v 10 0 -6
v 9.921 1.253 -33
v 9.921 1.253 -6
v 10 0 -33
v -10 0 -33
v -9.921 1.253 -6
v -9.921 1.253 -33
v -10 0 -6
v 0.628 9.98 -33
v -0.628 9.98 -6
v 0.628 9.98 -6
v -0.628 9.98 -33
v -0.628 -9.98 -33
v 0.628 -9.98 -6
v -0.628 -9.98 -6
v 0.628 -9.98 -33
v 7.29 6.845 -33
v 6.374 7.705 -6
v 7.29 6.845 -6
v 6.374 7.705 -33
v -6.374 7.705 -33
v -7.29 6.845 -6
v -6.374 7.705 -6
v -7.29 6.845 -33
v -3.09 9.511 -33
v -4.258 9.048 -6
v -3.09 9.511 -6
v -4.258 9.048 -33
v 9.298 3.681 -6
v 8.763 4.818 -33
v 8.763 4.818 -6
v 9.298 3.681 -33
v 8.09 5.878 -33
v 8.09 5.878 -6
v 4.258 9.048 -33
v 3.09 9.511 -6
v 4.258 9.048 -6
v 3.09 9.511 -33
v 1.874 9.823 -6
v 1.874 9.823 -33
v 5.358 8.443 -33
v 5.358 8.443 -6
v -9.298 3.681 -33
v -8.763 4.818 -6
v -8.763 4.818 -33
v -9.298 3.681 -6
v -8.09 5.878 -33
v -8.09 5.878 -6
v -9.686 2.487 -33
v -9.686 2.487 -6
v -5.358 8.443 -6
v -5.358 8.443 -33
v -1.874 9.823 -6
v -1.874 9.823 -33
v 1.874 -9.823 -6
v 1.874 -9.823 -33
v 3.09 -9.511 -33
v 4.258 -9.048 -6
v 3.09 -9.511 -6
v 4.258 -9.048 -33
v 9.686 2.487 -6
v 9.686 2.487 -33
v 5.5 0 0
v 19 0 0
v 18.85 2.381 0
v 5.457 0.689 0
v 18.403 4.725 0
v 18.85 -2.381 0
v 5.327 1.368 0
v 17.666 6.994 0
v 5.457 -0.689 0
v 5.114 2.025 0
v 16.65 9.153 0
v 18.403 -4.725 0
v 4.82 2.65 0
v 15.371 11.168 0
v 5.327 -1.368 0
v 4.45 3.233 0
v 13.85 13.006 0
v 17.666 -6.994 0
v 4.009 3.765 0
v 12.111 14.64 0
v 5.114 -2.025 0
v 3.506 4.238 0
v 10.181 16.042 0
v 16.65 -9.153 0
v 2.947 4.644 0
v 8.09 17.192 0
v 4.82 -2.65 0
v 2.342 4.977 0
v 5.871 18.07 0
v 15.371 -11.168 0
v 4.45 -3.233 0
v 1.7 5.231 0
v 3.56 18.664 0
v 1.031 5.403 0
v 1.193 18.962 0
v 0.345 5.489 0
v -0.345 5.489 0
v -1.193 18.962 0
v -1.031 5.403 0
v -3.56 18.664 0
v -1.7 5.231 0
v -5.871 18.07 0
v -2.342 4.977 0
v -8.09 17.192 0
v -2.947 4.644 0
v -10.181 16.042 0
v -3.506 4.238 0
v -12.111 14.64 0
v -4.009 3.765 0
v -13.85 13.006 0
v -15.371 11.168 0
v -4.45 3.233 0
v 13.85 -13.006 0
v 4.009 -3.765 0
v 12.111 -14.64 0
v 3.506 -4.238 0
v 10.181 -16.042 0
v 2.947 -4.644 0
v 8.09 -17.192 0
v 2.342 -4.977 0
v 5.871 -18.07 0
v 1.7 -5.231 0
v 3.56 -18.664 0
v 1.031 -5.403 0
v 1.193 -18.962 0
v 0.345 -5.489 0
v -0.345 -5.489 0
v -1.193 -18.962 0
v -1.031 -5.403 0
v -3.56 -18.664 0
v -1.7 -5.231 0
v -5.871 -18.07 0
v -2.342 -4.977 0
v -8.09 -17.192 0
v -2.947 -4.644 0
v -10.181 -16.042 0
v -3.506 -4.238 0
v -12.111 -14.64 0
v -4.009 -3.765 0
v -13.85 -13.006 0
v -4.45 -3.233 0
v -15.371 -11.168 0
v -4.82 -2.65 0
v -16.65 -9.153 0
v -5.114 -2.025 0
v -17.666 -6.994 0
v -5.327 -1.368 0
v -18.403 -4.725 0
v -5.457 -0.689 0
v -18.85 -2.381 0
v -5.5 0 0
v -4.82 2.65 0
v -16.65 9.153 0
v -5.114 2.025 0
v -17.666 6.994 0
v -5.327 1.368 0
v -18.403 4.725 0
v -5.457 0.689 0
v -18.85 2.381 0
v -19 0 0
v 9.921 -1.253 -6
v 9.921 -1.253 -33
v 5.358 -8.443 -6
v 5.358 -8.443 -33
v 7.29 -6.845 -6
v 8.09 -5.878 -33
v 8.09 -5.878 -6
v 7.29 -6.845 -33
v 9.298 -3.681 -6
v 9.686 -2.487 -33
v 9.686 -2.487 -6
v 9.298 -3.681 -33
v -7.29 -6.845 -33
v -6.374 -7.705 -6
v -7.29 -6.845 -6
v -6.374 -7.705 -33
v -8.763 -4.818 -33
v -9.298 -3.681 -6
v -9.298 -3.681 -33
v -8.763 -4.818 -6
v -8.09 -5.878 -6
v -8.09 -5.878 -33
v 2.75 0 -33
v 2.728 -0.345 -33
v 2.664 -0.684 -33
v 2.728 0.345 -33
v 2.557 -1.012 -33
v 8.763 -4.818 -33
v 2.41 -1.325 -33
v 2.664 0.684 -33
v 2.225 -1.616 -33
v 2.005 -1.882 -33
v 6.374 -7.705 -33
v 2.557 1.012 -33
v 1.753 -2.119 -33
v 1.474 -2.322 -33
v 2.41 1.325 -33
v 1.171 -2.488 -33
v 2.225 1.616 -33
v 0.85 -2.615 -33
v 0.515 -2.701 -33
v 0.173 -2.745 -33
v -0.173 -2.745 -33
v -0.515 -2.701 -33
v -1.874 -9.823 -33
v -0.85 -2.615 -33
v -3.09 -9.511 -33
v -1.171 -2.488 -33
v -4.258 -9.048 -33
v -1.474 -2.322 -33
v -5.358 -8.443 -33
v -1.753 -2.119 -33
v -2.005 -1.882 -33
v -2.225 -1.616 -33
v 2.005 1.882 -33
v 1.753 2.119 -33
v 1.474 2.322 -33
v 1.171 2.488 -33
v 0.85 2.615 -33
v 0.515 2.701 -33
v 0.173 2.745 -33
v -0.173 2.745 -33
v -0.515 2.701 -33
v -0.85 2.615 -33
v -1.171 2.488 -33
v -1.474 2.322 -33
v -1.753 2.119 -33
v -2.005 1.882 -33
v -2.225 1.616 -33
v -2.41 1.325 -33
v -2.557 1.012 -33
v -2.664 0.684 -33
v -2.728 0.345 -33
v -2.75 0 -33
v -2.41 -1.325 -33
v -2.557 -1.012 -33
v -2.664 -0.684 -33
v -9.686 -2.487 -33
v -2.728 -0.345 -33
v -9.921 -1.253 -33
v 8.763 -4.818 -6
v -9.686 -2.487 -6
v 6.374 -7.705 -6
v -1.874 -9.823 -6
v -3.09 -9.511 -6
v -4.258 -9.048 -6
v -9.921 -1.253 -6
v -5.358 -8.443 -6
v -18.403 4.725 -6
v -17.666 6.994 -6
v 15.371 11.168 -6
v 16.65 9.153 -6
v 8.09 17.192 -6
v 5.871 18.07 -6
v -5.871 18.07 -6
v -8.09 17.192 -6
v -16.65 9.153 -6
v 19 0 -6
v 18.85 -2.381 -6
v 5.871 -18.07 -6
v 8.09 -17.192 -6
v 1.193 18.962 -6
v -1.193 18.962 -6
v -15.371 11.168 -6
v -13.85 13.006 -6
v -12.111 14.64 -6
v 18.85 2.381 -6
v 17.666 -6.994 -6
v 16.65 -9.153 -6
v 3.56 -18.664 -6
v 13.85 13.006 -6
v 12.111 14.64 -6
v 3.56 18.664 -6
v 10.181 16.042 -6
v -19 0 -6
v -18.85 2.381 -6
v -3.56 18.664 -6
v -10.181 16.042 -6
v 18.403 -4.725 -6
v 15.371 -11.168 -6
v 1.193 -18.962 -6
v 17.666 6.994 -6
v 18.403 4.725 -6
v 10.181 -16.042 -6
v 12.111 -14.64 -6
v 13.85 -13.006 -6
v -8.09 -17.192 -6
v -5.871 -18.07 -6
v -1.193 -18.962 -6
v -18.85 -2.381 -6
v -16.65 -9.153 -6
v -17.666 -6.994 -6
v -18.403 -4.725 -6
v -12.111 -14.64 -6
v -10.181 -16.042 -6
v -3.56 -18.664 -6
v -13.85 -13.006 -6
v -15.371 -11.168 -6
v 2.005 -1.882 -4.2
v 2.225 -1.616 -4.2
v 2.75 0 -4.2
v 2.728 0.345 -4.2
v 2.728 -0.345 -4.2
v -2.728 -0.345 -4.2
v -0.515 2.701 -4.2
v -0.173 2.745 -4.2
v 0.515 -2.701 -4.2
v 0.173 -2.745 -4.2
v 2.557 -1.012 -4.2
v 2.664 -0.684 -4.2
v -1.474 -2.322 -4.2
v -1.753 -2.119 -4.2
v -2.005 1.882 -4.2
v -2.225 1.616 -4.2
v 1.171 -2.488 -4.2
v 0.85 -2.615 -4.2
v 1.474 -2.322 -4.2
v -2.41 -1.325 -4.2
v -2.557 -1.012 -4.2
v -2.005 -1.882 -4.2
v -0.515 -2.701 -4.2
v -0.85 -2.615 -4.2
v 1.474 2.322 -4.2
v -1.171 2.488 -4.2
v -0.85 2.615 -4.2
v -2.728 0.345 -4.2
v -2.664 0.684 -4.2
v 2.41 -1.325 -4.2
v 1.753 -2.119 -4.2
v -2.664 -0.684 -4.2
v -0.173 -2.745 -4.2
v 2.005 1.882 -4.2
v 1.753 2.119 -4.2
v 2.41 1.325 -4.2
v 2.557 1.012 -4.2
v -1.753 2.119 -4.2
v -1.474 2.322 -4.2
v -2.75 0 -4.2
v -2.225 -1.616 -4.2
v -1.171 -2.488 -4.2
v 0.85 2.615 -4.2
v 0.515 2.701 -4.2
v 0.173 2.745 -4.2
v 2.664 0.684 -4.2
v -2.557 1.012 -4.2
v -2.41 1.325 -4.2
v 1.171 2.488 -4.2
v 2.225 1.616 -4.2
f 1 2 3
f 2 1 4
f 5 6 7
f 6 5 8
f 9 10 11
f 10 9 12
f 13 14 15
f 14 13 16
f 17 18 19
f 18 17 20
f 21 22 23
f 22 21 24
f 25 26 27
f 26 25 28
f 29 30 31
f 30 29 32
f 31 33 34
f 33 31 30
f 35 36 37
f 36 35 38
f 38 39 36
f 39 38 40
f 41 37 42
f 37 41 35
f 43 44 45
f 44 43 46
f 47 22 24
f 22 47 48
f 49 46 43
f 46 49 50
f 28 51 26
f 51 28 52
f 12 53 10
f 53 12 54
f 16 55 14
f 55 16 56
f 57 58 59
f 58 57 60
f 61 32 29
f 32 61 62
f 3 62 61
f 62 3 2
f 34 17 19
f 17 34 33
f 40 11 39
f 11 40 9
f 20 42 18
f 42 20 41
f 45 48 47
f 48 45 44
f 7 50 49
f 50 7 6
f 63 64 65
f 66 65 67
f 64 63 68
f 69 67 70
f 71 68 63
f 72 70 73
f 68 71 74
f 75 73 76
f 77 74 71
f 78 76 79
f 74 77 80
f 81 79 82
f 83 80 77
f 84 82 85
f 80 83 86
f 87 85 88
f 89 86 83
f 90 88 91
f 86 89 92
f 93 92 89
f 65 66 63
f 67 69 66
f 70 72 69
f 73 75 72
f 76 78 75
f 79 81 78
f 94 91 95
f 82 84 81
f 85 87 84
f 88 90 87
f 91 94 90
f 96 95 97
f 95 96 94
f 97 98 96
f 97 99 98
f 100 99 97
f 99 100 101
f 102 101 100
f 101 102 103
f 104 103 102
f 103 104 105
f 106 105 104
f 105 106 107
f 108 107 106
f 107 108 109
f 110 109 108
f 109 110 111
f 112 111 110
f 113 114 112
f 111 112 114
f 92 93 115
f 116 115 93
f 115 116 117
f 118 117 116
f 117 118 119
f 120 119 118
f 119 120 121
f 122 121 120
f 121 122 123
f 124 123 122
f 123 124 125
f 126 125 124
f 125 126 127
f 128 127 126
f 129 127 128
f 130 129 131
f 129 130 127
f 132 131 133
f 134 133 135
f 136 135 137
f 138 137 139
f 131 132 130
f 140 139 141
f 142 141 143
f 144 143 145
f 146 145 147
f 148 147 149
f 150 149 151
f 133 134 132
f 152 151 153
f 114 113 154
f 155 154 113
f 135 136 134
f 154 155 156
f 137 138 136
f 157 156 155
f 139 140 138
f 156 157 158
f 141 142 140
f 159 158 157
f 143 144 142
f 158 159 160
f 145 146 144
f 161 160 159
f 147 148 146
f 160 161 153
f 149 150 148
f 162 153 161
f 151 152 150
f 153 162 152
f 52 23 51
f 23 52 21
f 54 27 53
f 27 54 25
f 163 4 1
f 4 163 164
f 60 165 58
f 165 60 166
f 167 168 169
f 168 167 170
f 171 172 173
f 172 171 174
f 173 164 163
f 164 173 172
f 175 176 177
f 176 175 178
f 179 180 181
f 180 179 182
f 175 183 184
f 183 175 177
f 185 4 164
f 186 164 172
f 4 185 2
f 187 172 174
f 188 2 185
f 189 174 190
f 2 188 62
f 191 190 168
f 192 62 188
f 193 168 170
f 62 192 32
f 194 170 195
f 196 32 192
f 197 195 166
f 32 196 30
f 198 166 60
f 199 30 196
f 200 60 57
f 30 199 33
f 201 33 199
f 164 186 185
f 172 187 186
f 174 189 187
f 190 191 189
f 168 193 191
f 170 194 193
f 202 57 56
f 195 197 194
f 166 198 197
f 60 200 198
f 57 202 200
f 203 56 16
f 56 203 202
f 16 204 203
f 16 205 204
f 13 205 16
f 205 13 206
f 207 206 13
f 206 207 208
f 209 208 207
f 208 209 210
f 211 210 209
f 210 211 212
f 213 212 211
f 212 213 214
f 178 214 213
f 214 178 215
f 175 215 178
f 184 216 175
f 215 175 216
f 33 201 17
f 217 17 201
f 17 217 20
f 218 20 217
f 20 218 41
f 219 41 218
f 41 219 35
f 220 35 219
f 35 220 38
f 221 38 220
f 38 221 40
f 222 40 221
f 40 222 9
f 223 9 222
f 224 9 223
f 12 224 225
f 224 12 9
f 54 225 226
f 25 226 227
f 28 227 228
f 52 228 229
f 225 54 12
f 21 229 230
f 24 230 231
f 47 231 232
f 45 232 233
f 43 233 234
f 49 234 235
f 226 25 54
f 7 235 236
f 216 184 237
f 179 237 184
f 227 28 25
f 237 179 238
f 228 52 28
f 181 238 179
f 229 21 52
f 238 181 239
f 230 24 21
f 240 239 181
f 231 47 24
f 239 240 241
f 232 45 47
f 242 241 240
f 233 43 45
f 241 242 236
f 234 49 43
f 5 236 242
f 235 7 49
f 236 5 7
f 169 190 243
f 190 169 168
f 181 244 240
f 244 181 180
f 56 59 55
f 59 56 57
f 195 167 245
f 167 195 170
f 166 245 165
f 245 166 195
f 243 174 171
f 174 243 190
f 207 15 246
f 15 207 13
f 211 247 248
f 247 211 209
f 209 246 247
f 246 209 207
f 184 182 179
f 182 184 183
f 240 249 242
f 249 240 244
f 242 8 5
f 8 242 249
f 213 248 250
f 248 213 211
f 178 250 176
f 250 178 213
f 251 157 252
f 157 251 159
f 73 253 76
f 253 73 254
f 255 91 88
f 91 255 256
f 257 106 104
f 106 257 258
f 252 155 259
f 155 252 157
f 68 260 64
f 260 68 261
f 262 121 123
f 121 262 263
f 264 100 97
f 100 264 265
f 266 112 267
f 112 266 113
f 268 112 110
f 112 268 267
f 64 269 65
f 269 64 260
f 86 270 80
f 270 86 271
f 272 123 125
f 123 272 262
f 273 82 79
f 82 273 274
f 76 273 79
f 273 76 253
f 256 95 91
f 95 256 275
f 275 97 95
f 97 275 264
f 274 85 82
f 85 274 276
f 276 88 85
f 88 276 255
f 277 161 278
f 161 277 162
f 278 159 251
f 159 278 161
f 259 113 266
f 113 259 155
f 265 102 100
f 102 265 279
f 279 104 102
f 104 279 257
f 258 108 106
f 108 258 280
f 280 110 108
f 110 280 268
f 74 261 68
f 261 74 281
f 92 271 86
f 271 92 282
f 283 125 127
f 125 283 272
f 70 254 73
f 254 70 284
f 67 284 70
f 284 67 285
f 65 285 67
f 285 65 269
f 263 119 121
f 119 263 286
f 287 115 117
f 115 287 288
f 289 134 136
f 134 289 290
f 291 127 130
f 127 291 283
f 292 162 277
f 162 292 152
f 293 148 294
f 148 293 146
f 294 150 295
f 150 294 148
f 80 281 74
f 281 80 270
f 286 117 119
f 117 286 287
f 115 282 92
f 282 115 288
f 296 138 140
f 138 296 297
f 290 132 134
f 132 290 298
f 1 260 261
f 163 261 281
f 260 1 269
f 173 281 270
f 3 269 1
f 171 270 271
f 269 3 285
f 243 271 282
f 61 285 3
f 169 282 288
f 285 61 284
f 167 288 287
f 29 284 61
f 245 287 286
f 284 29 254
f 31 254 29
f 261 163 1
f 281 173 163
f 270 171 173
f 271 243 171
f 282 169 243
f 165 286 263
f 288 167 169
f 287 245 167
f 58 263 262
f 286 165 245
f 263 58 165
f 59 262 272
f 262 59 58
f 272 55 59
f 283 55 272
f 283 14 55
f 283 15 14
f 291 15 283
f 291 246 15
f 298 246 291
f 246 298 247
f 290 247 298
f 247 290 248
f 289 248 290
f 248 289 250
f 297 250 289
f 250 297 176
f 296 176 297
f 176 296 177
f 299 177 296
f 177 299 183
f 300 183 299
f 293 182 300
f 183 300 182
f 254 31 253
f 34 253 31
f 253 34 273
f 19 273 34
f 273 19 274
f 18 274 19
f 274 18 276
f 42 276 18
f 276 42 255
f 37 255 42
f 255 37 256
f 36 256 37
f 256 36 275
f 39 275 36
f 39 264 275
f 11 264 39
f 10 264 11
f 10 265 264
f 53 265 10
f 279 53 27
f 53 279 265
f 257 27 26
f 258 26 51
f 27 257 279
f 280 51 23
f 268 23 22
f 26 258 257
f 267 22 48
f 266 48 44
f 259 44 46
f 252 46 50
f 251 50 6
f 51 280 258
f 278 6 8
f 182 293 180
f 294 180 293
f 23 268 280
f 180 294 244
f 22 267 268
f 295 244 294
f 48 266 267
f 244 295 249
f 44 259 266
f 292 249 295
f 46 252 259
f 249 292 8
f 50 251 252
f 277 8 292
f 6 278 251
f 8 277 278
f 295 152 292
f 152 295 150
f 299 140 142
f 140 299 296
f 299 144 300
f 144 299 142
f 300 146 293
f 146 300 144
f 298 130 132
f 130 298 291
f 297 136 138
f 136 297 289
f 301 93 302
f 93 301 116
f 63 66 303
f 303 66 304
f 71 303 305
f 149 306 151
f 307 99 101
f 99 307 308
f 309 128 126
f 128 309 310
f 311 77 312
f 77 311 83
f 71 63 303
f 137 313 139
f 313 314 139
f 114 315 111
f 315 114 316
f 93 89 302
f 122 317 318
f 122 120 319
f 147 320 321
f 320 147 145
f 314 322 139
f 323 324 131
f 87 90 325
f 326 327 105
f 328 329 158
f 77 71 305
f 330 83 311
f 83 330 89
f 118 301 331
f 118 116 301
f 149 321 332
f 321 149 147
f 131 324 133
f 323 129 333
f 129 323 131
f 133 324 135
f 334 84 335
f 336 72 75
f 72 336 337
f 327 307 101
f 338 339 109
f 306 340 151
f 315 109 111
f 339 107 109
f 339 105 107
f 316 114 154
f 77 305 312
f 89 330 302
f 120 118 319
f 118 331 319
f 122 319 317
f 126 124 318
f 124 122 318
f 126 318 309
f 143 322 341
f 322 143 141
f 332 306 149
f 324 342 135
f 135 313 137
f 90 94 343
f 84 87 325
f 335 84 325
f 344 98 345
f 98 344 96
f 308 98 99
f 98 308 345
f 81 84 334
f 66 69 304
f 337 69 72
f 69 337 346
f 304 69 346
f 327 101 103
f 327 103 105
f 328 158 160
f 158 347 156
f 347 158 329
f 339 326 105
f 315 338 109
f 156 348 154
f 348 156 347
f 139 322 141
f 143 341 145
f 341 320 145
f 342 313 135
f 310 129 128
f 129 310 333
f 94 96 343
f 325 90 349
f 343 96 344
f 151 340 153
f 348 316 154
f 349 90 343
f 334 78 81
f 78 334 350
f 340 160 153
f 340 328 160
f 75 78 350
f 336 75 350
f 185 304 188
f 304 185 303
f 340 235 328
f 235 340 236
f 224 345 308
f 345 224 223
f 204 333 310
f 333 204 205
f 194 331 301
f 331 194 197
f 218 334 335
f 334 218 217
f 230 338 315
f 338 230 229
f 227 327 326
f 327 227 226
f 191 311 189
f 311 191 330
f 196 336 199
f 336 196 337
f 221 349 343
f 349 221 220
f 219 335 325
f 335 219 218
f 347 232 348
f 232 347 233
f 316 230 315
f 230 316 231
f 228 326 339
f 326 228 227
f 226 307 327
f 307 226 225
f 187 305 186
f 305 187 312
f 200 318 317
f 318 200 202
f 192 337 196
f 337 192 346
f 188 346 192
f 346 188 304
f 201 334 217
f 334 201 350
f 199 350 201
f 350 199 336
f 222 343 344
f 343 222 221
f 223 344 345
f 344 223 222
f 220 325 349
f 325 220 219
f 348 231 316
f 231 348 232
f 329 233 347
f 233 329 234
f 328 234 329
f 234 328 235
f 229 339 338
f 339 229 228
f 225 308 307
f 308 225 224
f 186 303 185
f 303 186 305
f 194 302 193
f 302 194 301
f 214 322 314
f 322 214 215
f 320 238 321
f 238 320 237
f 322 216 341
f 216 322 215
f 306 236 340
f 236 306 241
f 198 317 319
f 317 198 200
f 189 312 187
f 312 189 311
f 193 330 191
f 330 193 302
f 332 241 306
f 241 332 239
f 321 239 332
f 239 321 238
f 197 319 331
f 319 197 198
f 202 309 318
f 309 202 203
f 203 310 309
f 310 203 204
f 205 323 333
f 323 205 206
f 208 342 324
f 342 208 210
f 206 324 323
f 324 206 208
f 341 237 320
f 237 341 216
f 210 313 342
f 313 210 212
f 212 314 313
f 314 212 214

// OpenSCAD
$fn = 50;


difference() {
	union() {
		translate(v = [0, 0, -33.0000000000]) {
			cylinder(h = 33, r = 10.0000000000);
		}
		translate(v = [0, 0, -6.0000000000]) {
			cylinder(h = 6, r = 19.0000000000);
		}
	}
	union() {
		translate(v = [0, 0, 0]) {
			rotate(a = [0, 0, 0]) {
				difference() {
					union() {
						#translate(v = [0, 0, -33.0000000000]) {
							cylinder(h = 33, r = 2.2500000000);
						}
						#translate(v = [0, 0, -4.2000000000]) {
							cylinder(h = 4.2000000000, r = 10.0000000000, r1 = 2.7500000000, r2 = 5.5000000000);
						}
						#translate(v = [0, 0, -33.0000000000]) {
							cylinder(h = 33, r = 2.7500000000);
						}
						#translate(v = [0, 0, -33.0000000000]) {
							cylinder(h = 33, r = 2.2500000000);
						}
					}
					union();
				}
			}
		}
	}
}
